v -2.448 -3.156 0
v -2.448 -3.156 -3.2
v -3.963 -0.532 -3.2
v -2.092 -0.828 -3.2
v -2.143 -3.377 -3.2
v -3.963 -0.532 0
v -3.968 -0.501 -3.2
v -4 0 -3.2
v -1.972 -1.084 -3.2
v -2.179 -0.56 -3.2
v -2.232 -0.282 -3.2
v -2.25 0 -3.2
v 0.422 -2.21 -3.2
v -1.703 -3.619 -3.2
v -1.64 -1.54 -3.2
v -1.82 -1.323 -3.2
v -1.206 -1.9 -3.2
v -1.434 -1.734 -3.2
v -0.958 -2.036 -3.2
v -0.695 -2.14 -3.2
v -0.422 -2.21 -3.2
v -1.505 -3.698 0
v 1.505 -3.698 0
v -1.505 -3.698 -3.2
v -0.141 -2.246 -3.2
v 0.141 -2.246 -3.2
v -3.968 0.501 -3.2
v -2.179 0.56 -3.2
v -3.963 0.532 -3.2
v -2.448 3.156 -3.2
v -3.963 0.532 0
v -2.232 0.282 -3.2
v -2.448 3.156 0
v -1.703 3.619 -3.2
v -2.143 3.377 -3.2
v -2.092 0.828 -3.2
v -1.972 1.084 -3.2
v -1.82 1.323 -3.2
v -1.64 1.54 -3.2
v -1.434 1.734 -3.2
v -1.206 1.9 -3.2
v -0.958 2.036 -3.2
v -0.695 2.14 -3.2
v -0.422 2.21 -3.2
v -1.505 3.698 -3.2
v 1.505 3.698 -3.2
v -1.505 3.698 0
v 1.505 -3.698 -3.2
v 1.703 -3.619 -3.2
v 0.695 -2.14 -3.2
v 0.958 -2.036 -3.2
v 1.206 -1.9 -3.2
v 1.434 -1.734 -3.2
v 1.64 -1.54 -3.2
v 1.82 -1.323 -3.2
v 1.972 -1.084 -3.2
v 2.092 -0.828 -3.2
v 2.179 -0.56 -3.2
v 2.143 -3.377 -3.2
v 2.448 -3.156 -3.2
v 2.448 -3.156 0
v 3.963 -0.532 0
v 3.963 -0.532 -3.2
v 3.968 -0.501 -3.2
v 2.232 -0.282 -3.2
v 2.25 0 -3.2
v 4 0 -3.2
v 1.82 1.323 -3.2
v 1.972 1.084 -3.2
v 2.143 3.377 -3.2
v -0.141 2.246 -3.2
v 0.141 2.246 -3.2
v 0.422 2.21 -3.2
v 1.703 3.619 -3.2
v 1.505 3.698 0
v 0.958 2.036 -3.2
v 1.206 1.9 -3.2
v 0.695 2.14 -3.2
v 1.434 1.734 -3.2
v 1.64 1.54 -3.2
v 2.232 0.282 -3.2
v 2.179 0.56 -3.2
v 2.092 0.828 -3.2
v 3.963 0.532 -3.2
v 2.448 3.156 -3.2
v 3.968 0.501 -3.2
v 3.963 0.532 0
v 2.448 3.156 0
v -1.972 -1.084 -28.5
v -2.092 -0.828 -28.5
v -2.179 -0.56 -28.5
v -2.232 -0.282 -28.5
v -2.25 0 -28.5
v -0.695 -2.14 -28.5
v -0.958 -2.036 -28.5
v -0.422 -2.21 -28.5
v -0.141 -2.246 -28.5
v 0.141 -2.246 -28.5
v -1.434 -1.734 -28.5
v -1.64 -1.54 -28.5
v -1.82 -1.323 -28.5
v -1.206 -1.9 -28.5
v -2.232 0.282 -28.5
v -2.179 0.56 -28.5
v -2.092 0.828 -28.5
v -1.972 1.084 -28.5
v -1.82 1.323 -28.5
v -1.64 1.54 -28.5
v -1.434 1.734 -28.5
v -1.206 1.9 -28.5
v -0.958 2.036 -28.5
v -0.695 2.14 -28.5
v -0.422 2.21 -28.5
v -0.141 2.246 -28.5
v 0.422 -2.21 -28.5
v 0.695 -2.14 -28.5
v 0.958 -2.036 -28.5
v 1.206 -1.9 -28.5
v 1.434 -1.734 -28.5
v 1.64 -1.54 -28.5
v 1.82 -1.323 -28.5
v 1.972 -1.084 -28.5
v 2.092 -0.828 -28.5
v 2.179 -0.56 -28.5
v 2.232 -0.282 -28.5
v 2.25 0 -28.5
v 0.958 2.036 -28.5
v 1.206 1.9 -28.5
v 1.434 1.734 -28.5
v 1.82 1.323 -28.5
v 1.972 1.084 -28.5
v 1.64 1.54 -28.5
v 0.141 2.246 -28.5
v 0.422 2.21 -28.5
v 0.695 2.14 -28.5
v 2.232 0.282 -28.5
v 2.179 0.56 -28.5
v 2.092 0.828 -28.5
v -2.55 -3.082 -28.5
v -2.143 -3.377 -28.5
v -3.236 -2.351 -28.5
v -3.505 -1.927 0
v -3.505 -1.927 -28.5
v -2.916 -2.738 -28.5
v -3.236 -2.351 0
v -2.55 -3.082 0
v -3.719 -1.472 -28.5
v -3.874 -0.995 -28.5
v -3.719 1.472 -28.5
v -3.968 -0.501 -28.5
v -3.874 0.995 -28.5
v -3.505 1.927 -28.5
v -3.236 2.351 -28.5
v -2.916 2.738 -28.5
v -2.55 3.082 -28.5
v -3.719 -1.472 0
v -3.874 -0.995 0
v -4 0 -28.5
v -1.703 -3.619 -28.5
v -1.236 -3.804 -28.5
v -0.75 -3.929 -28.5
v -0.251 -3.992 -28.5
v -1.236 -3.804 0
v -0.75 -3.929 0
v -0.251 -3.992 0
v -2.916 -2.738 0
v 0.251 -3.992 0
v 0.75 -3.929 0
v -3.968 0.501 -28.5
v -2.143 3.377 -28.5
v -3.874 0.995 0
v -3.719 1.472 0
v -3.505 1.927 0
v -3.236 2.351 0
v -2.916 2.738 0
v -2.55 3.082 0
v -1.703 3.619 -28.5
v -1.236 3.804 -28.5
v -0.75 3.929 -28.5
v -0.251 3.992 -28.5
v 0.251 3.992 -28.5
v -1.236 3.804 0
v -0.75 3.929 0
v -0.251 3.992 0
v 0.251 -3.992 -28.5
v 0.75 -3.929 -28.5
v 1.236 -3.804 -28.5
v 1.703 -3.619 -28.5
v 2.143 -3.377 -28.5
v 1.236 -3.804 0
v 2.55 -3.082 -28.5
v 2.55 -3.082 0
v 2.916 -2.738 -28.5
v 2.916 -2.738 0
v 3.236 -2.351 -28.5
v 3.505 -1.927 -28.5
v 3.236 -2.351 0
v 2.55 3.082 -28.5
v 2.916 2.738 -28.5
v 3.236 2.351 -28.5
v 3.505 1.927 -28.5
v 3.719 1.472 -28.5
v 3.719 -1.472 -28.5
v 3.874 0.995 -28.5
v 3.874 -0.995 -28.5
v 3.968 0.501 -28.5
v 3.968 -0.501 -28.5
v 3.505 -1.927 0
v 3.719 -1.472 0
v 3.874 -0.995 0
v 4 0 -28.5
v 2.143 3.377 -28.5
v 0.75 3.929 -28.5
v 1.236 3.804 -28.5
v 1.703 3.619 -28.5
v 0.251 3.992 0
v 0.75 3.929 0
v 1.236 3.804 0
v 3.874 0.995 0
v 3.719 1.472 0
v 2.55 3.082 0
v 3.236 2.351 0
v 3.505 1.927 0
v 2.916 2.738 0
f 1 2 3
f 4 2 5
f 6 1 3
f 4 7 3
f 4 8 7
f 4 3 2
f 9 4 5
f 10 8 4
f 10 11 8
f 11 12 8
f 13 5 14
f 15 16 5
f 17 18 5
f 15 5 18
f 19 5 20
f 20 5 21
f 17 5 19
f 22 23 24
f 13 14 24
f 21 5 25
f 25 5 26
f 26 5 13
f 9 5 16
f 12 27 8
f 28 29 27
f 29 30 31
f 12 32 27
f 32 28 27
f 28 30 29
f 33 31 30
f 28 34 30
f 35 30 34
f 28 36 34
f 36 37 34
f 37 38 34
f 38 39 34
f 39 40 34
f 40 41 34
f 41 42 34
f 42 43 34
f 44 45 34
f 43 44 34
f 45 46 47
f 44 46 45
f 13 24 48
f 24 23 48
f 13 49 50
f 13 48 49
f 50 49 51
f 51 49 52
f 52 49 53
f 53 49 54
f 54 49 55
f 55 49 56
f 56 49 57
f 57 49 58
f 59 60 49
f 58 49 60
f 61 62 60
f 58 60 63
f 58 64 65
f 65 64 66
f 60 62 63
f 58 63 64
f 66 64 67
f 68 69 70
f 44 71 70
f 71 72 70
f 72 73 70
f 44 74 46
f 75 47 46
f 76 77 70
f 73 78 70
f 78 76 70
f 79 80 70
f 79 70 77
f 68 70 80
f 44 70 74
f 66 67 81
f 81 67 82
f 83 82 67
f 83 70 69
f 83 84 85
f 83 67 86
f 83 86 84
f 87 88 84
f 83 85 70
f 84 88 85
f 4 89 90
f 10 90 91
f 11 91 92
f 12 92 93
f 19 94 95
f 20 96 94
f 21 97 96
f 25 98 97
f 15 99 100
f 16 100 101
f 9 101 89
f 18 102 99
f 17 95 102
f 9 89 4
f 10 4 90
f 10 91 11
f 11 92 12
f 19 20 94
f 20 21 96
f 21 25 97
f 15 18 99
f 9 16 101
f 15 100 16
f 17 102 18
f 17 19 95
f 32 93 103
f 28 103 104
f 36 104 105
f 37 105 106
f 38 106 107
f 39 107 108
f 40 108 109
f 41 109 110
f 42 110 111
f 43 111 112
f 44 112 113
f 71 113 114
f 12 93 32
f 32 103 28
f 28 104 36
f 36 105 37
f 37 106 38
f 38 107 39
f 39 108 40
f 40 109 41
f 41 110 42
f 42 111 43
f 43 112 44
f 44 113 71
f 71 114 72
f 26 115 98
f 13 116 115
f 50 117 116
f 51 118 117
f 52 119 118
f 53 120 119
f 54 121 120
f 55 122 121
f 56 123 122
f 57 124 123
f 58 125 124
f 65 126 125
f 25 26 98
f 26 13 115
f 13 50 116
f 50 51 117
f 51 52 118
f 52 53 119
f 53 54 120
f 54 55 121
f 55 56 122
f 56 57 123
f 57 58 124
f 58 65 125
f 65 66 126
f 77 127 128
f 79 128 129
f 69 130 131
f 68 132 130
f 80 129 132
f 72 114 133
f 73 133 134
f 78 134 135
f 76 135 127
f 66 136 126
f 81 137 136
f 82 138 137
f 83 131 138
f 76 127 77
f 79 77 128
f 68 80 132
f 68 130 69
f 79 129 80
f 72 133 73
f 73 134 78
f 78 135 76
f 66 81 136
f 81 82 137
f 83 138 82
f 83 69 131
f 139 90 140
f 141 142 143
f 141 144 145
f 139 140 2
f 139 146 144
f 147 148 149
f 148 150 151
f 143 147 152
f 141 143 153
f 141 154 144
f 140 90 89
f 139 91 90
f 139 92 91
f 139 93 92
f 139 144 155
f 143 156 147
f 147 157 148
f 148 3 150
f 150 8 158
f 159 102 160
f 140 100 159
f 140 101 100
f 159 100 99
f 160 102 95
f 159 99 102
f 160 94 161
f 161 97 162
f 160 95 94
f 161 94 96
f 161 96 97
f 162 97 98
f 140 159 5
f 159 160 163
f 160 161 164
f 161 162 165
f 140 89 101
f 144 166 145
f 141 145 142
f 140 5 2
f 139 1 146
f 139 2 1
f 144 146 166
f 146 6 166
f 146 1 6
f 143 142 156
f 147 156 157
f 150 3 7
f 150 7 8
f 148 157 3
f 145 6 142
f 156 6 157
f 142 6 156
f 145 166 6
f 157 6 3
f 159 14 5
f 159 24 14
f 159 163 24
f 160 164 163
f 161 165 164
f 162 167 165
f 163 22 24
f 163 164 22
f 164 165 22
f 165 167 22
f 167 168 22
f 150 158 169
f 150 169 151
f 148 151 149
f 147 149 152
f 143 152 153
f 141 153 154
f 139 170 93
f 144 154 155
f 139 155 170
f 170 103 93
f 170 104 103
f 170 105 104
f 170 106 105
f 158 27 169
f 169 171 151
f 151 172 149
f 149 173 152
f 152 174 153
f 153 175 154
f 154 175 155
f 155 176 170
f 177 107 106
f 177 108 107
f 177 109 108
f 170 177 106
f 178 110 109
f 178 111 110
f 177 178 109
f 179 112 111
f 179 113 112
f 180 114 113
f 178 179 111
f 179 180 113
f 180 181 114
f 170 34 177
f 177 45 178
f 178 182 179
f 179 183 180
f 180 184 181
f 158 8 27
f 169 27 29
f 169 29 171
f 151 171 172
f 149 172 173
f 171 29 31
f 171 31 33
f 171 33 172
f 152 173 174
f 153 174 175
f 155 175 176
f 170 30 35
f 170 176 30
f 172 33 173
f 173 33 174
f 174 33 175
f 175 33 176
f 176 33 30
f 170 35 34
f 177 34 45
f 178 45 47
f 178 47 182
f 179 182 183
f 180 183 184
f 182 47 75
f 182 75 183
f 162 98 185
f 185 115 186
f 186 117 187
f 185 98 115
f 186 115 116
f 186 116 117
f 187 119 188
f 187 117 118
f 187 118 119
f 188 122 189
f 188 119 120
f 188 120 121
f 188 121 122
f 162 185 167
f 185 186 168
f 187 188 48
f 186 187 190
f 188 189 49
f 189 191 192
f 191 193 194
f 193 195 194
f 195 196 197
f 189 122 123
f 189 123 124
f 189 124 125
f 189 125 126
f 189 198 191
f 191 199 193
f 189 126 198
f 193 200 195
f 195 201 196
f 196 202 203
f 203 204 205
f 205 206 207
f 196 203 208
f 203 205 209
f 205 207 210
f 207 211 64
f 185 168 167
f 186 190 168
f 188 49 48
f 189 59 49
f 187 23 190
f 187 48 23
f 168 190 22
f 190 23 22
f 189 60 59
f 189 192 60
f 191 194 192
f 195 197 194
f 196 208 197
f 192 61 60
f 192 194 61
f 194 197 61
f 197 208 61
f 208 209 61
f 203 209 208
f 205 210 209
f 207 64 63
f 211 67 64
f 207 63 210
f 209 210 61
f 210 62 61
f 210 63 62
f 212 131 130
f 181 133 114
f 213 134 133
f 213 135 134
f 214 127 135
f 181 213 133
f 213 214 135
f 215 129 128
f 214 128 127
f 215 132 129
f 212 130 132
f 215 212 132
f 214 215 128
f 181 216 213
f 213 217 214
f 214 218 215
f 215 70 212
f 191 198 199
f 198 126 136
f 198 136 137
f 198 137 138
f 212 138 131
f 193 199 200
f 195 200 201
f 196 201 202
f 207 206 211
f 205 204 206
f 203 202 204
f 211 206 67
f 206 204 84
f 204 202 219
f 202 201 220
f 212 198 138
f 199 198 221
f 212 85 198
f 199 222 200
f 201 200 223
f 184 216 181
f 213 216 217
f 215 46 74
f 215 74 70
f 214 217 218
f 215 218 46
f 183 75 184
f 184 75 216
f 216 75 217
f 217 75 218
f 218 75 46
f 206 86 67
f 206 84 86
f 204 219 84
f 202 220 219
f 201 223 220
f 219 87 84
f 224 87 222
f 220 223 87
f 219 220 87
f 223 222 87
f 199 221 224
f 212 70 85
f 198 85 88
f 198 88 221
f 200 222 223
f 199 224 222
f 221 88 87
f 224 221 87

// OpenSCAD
$fn = 50;

difference() {
	union() {
		translate(v = [0, 0, -28.5]) {
			cylinder(h = 28.5, r = 4.0);
		}
	}
	union() {
		translate(v = [0, 0, 0]) {
			rotate(a = [0, 0, 0]) {
				difference() {
					union() {
						translate(v = [0, 0, -3.2]) {
							linear_extrude(height = 3.2) {
								polygon(points = [[4.2698, 0.0], [2.1349000000000005, 3.697755269078796], [-2.134899999999999, 3.6977552690787965], [-4.2698, 5.228996902999369e-16], [-2.134900000000002, -3.6977552690787956], [2.1348999999999974, -3.697755269078798]]);
							}
						}
					}
					union();
				}
			}
		}
		#translate(v = [0, 0, -100.0]) {
			cylinder(h = 200, r = 2.25);
		}
	}
}
